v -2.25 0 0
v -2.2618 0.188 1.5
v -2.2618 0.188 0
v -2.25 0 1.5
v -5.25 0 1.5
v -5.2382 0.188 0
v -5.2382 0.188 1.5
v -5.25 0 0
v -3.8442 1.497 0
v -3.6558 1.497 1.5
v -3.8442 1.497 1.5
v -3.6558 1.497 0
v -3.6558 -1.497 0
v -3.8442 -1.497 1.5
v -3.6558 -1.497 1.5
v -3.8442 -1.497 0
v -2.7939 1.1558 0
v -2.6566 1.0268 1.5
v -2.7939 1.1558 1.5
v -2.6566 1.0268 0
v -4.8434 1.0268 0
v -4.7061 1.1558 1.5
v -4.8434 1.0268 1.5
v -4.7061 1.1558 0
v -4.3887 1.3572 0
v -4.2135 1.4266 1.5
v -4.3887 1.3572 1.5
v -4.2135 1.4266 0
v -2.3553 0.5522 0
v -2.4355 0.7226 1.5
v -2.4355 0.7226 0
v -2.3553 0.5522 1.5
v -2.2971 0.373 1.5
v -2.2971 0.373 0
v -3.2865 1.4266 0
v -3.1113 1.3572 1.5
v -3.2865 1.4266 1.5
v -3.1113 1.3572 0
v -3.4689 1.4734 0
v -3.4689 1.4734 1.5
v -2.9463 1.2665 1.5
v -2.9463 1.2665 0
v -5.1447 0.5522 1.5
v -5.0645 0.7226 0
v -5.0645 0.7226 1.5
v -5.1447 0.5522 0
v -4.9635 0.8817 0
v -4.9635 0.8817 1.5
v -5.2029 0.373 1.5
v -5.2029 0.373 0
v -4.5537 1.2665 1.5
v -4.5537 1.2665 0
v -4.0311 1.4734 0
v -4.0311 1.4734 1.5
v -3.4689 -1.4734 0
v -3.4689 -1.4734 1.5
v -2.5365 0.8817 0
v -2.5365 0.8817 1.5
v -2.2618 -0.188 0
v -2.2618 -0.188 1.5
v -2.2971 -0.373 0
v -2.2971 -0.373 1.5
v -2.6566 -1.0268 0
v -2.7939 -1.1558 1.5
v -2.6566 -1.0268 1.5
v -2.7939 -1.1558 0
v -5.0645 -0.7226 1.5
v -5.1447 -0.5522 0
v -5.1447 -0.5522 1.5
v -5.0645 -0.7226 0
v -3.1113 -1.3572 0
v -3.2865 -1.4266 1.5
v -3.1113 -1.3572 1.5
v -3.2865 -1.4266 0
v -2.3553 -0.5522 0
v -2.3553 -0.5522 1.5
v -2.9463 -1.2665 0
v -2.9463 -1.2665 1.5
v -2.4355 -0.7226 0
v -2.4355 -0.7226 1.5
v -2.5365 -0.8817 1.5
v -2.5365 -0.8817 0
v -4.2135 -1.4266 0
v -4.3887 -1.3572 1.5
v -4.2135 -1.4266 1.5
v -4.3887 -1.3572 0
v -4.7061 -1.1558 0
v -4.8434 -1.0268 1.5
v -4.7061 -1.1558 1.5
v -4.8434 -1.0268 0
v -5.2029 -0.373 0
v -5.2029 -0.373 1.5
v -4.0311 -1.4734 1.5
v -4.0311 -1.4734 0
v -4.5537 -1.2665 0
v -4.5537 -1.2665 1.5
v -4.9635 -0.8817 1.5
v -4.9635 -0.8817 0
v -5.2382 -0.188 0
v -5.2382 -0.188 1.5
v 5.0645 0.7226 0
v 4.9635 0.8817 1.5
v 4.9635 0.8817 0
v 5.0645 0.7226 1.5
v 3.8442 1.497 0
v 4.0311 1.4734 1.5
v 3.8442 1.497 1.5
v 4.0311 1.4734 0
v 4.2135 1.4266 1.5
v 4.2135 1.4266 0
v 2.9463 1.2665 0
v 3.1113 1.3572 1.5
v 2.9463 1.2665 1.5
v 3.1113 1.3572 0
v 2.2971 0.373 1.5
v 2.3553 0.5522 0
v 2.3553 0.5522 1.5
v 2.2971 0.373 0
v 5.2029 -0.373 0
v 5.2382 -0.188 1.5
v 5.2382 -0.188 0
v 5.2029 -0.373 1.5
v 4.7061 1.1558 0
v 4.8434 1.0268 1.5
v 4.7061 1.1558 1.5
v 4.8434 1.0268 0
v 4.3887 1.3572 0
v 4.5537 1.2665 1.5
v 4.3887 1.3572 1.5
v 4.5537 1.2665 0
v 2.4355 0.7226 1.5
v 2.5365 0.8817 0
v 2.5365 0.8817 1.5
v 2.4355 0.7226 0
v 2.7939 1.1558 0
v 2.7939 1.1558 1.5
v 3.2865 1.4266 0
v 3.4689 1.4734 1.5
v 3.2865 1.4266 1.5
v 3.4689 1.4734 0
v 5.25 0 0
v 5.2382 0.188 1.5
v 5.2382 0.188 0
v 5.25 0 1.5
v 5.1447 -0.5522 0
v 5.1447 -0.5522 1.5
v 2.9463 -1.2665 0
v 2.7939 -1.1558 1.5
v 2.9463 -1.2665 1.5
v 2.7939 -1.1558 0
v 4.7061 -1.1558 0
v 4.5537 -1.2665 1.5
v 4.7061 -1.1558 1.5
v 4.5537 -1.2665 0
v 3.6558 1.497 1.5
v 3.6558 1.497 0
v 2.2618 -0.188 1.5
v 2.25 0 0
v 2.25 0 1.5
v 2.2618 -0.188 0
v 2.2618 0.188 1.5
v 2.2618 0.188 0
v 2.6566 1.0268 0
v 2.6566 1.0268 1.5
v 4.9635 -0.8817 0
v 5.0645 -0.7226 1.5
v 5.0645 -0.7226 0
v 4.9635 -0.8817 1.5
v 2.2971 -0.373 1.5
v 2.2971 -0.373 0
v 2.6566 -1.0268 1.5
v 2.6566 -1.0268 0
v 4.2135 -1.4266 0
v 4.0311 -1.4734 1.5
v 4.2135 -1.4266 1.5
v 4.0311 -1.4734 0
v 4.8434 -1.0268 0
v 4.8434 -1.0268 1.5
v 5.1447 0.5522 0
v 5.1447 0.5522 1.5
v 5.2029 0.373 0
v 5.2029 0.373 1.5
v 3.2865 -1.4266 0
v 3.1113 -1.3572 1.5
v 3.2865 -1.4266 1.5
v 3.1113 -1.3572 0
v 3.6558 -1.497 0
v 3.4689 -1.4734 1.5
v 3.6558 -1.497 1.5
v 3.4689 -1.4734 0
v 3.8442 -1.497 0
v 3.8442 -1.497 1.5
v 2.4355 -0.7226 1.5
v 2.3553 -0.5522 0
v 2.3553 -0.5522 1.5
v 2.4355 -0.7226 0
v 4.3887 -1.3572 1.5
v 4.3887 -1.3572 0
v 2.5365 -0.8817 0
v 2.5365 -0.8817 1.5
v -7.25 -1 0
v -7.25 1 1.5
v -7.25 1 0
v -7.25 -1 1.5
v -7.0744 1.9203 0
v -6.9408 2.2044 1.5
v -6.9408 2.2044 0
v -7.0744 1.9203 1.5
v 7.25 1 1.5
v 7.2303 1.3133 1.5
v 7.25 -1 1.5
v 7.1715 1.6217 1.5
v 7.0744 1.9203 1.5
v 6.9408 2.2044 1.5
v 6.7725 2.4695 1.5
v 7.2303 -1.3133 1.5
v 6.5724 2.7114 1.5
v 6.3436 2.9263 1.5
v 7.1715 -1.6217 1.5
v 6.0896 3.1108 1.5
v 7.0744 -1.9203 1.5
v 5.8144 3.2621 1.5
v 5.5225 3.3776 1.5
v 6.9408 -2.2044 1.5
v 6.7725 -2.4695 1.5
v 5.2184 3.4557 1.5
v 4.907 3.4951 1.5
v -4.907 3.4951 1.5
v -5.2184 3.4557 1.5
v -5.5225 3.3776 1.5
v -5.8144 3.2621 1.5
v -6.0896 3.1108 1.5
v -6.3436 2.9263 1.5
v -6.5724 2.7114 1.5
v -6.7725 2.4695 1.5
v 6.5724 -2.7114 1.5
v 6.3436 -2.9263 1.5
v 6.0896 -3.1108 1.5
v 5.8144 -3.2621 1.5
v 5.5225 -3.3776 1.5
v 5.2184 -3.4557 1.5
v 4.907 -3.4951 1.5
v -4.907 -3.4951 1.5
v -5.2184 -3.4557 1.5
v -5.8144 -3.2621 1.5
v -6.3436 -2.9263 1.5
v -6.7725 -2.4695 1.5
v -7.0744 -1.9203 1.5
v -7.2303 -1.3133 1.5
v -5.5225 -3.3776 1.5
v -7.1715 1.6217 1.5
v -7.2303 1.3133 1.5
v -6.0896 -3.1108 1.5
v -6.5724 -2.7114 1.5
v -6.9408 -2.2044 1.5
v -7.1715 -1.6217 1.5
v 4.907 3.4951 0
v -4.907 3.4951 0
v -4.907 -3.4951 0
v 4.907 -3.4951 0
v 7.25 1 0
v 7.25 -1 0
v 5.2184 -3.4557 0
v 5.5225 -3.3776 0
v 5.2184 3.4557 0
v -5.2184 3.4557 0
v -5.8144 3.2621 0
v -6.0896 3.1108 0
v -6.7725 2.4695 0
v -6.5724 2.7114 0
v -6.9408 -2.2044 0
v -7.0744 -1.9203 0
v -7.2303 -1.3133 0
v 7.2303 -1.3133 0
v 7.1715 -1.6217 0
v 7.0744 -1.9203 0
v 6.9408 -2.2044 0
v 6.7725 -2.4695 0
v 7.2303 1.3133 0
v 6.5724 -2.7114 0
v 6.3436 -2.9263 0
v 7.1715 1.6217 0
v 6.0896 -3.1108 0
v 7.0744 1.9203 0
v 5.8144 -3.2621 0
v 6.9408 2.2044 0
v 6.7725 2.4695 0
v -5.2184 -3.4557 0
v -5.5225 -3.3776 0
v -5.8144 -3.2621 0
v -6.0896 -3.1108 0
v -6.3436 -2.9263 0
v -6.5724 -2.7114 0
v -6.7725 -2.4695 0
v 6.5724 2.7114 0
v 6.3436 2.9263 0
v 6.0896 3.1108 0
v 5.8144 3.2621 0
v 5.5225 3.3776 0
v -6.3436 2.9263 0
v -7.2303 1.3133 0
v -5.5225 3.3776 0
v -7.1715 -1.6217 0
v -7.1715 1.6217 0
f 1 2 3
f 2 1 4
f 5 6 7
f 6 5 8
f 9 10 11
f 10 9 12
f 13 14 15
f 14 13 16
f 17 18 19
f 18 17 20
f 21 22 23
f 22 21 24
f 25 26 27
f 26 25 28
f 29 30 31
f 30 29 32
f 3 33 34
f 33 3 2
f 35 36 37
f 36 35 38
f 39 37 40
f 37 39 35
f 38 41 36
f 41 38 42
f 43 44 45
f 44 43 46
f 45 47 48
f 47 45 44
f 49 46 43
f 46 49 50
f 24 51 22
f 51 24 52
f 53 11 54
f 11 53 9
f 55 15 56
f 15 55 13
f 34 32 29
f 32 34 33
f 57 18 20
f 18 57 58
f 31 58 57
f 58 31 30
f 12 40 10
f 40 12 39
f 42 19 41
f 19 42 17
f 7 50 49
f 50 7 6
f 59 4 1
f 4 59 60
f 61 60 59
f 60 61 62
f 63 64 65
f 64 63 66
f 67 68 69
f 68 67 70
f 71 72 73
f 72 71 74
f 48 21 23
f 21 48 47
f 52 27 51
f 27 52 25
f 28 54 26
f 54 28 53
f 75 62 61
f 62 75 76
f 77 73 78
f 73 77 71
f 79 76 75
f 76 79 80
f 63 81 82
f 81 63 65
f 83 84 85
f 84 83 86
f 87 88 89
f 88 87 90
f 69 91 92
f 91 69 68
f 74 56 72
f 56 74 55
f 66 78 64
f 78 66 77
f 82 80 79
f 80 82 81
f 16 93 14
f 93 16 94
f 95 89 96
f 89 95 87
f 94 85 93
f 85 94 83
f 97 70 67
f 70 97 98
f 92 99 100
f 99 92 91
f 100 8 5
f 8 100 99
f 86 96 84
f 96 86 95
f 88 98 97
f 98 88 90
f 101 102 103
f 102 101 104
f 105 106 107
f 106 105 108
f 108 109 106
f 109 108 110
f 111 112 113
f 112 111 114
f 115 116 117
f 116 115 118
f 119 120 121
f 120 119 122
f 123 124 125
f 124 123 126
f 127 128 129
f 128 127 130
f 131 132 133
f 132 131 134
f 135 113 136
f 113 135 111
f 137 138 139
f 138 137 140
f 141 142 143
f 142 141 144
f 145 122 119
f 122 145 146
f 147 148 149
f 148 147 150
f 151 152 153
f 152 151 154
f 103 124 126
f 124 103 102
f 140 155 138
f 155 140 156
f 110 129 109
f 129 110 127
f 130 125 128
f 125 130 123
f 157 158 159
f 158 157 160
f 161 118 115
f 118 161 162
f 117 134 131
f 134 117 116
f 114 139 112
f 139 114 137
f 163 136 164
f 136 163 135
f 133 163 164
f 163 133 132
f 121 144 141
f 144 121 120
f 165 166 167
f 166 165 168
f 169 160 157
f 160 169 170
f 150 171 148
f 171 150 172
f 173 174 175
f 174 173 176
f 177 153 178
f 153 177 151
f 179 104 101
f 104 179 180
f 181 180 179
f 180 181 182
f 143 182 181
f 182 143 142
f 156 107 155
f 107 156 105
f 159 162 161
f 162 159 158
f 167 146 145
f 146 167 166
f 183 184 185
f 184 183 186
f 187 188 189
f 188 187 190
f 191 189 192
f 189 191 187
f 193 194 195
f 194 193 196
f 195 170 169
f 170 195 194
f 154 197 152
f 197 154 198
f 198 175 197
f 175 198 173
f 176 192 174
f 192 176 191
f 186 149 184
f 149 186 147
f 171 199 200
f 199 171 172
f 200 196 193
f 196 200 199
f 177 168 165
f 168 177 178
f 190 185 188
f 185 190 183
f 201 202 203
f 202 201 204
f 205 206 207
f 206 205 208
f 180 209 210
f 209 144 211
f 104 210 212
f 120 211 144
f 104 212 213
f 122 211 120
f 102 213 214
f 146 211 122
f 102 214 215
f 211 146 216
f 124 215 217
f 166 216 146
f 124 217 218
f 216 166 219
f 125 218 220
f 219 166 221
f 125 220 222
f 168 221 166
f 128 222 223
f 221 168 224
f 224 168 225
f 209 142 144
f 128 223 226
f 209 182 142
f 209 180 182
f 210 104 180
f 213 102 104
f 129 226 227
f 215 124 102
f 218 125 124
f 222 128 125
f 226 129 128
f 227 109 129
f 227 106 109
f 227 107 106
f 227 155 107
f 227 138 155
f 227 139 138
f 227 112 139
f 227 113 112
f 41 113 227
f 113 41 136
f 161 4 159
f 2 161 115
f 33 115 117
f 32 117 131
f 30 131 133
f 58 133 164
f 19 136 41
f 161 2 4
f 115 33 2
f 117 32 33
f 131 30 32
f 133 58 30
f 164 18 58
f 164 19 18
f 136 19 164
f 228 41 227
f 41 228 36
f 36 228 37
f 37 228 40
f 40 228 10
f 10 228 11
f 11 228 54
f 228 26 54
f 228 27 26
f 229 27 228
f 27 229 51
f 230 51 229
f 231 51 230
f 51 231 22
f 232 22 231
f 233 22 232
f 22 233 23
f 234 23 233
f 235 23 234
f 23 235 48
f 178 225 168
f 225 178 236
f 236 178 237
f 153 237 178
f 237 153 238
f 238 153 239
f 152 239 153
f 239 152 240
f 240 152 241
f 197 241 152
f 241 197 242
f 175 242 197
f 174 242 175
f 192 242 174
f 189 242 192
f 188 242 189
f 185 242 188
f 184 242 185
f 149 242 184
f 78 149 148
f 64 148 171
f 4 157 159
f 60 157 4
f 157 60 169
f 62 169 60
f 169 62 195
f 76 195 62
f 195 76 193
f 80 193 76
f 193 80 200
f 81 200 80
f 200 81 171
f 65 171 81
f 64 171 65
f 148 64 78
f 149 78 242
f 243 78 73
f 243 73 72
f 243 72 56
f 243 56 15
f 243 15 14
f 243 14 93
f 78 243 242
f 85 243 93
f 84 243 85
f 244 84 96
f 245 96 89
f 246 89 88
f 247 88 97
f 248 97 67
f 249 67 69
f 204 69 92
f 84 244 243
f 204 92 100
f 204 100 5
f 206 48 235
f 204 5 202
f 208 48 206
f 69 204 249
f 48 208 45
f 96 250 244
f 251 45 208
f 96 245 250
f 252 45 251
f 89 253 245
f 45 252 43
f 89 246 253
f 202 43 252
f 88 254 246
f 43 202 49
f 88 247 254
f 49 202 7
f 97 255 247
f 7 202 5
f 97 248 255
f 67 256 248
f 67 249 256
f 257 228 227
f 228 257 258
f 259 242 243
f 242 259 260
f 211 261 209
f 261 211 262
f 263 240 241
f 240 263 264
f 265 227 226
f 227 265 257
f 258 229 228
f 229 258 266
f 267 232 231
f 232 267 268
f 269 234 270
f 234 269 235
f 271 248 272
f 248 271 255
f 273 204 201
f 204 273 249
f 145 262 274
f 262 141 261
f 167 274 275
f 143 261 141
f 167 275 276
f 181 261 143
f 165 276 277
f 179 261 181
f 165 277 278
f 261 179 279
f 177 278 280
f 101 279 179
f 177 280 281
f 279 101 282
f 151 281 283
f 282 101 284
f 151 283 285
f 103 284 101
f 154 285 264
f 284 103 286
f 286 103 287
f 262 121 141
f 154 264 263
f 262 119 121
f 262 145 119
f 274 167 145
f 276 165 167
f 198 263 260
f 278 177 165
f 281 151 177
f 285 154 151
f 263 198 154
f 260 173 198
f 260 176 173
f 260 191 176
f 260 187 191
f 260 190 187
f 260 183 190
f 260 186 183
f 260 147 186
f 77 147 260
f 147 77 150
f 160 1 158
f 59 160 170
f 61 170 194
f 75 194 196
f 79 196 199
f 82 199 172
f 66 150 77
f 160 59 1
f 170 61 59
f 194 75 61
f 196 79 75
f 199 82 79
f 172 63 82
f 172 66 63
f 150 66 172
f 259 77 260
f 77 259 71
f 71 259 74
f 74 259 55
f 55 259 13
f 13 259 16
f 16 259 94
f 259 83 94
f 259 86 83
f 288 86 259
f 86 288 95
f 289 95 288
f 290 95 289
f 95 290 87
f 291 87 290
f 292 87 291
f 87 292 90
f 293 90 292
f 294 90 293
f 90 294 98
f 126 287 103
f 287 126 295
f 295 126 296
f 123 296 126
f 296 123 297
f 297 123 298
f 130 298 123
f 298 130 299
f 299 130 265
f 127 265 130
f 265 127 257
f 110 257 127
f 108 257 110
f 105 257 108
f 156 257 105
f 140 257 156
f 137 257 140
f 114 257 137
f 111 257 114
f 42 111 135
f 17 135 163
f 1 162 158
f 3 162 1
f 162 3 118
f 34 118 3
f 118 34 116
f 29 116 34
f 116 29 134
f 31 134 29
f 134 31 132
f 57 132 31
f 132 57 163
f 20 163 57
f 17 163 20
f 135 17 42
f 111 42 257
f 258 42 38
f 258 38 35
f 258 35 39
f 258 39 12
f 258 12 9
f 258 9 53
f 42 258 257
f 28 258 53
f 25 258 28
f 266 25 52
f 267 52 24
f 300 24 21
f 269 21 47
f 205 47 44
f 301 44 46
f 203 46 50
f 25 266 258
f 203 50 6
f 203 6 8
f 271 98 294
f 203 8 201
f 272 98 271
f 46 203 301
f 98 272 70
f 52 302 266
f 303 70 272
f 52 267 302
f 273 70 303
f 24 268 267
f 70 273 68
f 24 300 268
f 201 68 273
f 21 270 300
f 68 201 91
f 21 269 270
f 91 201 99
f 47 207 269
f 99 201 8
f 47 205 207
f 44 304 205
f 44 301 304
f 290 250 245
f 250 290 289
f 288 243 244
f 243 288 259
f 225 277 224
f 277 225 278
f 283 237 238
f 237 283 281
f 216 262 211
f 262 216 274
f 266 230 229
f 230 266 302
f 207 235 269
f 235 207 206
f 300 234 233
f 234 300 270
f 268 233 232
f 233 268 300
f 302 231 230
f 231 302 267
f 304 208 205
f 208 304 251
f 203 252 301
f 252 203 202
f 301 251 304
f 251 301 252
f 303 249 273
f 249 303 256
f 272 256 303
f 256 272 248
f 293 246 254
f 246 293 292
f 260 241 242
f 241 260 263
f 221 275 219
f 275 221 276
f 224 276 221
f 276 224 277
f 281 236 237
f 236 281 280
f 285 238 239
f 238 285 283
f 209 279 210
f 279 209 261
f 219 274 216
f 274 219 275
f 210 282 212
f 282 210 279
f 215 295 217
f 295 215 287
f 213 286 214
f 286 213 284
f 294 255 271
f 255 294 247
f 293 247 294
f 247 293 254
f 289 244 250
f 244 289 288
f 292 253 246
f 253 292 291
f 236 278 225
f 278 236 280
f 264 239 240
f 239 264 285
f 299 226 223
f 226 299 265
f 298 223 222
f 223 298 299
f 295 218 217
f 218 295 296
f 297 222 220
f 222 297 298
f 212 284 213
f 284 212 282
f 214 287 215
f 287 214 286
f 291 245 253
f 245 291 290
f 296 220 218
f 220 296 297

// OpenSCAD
$fn = 50;


difference() {
	union() {
		translate(v = [0, 0, 0]) {
			rotate(a = [0, 0, 0]) {
				hull() {
					translate(v = [-4.7500000000, 1.0000000000, 0]) {
						rotate(a = [0, 0, 0]) {
							translate(v = [0, 0, 0]) {
								rotate(a = [0, 0, 0]) {
									cylinder(h = 1.5000000000, r = 2.5000000000);
								}
							}
						}
					}
					translate(v = [4.7500000000, 1.0000000000, 0]) {
						rotate(a = [0, 0, 0]) {
							translate(v = [0, 0, 0]) {
								rotate(a = [0, 0, 0]) {
									cylinder(h = 1.5000000000, r = 2.5000000000);
								}
							}
						}
					}
					translate(v = [-4.7500000000, -1.0000000000, 0]) {
						rotate(a = [0, 0, 0]) {
							translate(v = [0, 0, 0]) {
								rotate(a = [0, 0, 0]) {
									cylinder(h = 1.5000000000, r = 2.5000000000);
								}
							}
						}
					}
					translate(v = [4.7500000000, -1.0000000000, 0]) {
						rotate(a = [0, 0, 0]) {
							translate(v = [0, 0, 0]) {
								rotate(a = [0, 0, 0]) {
									cylinder(h = 1.5000000000, r = 2.5000000000);
								}
							}
						}
					}
				}
			}
		}
	}
	union() {
		translate(v = [-3.7500000000, 0.0000000000, 0]) {
			rotate(a = [0, 0, 0]) {
				translate(v = [0, 0, -50]) {
					rotate(a = [0, 0, 0]) {
						cylinder(h = 100, r = 1.5000000000);
					}
				}
			}
		}
		translate(v = [3.7500000000, 0.0000000000, 0]) {
			rotate(a = [0, 0, 0]) {
				translate(v = [0, 0, -50]) {
					rotate(a = [0, 0, 0]) {
						cylinder(h = 100, r = 1.5000000000);
					}
				}
			}
		}
	}
}
